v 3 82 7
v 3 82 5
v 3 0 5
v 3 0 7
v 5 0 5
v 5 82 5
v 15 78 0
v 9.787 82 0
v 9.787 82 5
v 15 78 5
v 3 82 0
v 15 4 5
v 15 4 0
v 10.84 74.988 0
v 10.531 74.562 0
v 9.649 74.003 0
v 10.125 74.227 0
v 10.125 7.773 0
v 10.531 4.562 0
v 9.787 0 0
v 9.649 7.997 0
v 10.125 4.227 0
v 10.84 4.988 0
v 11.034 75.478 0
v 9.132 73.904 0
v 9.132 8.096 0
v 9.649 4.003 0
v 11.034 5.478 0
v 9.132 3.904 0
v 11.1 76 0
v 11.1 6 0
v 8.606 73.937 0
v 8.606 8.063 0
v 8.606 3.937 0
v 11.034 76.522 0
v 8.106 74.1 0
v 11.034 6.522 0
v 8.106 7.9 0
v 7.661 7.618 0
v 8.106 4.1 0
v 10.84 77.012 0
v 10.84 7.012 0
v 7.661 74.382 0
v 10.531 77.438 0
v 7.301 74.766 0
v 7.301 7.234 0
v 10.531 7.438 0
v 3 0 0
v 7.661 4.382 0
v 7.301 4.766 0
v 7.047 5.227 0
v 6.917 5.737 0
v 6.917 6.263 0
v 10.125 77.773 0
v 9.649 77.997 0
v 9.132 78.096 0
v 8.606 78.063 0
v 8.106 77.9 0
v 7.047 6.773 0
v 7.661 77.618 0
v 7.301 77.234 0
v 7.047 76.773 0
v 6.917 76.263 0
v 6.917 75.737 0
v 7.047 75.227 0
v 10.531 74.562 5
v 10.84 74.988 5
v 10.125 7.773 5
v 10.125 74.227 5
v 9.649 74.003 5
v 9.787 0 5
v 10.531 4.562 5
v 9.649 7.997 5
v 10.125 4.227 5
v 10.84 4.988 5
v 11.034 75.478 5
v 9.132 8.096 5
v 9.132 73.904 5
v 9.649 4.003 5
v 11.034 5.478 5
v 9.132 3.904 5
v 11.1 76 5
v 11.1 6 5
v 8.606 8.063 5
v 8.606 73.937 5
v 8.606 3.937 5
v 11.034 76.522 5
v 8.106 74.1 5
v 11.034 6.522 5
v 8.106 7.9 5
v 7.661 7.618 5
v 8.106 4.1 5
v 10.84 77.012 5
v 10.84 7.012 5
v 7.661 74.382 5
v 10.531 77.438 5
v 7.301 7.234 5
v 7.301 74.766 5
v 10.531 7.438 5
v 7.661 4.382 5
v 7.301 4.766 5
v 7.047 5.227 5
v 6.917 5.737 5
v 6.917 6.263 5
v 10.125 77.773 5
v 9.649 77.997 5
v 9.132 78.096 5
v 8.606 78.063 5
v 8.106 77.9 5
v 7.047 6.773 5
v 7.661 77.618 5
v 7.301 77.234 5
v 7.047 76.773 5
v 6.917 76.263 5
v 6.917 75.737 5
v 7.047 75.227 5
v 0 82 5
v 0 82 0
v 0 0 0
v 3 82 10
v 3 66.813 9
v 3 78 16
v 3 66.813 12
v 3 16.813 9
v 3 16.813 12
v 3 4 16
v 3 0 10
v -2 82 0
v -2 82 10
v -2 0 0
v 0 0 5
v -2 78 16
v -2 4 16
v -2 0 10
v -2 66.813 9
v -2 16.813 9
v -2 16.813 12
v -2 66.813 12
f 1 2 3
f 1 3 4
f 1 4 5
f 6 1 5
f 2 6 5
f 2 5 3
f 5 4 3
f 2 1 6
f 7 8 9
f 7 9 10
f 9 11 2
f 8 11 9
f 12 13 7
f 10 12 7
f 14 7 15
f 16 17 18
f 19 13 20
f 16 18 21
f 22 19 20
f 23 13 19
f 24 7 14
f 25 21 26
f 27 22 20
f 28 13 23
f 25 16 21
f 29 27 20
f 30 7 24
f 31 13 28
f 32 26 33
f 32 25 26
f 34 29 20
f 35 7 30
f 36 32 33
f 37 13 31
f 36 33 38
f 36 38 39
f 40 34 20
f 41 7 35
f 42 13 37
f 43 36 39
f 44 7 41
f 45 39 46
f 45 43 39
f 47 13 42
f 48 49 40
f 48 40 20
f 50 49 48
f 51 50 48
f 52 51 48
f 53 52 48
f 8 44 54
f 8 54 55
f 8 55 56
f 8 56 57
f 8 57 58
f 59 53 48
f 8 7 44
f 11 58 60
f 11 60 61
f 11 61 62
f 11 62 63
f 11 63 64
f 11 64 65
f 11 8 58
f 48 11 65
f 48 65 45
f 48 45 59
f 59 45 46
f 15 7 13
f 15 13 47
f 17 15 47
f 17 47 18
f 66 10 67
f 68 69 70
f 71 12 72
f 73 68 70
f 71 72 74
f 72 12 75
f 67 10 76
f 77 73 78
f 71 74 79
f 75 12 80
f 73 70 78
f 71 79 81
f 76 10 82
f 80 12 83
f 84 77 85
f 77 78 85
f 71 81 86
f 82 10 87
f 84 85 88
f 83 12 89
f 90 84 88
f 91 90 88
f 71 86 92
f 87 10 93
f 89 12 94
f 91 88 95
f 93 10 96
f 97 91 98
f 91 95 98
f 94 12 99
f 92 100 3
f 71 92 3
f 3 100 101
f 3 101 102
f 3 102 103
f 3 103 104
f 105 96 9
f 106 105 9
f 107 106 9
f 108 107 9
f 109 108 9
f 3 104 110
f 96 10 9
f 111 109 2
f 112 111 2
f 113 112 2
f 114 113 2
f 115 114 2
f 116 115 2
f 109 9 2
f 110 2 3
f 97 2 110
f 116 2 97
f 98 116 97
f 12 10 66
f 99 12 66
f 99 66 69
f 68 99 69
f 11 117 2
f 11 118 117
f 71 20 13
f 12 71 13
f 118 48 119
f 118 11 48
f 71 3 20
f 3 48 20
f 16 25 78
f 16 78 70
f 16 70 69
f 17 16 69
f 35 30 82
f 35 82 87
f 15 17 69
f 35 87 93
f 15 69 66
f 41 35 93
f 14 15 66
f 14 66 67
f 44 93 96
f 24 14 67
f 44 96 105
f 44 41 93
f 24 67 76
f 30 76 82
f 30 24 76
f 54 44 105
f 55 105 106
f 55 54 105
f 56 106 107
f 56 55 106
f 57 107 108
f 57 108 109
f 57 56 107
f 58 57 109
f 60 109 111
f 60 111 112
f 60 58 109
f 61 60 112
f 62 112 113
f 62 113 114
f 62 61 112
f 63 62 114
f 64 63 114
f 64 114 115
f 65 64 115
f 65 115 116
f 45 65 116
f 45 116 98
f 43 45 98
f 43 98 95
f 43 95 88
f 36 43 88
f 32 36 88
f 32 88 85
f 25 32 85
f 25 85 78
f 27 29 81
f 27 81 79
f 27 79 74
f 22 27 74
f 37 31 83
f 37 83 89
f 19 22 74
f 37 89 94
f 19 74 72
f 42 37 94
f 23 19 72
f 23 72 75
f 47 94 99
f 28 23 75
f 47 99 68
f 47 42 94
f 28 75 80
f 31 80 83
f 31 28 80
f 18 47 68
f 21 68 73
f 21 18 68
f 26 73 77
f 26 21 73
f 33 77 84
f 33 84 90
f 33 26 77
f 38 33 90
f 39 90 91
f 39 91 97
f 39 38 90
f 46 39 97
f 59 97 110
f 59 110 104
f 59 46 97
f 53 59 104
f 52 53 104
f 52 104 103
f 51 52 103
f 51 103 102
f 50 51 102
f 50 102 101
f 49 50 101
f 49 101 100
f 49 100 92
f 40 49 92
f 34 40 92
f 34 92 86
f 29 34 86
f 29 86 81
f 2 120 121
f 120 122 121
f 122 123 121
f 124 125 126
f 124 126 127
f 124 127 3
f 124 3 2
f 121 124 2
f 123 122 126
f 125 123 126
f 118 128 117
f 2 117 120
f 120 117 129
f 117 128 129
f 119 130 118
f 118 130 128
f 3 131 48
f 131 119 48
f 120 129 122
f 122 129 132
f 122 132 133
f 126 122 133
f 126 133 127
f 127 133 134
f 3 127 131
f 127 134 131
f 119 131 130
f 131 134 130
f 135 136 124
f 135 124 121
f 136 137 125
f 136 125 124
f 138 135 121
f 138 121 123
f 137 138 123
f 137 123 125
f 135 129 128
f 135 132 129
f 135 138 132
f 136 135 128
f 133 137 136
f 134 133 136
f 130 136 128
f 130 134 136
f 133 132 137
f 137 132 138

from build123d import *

# Parameters (mm, degrees)
SKETCH001_W  = 50
SKETCH001_H  = 3
PAD001_DEPTH = 5
SKETCH_R     = 2.1
PAD_DEPTH    = 5
PAD002_DEPTH = 82


with BuildPart() as pad001:
    # Sketch001 → Pad001 (new body)
    with BuildSketch(Plane.YZ.offset(-2)):
        Polygon((0, 0), (82, 0), (82, 10), (78, 16), (4, 16), (0, 10), align=None)
        with Locations((41.813425, 10.5)):
            Rectangle(SKETCH001_W, SKETCH001_H, mode=Mode.SUBTRACT)
    extrude(amount=PAD001_DEPTH)


with BuildPart() as fusion:
    # Sketch → Pad (new body)
    with BuildSketch(Plane.XY):
        Polygon((0, 82), (0, 0), (9.787406, 0), (14.999606, 4), (14.999606, 78), (9.787406, 82), align=None)
        with Locations((9, 6)):
            Circle(SKETCH_R, mode=Mode.SUBTRACT)
        with Locations((9, 76)):
            Circle(SKETCH_R, mode=Mode.SUBTRACT)
    extrude(amount=PAD_DEPTH)

    # Fusion: union Pad001
    add(pad001.part)


with BuildPart() as pad002:
    # Sketch002 → Pad002 (new body)
    with BuildSketch(Plane(origin=(3, 0, 5), x_dir=(1, 0, 0), z_dir=(0, -1, 0))):
        Polygon((0, 0), (0, 2), (2, 0), align=None)
    extrude(amount=-PAD002_DEPTH)


solid = Compound([fusion.part, pad002.part])
